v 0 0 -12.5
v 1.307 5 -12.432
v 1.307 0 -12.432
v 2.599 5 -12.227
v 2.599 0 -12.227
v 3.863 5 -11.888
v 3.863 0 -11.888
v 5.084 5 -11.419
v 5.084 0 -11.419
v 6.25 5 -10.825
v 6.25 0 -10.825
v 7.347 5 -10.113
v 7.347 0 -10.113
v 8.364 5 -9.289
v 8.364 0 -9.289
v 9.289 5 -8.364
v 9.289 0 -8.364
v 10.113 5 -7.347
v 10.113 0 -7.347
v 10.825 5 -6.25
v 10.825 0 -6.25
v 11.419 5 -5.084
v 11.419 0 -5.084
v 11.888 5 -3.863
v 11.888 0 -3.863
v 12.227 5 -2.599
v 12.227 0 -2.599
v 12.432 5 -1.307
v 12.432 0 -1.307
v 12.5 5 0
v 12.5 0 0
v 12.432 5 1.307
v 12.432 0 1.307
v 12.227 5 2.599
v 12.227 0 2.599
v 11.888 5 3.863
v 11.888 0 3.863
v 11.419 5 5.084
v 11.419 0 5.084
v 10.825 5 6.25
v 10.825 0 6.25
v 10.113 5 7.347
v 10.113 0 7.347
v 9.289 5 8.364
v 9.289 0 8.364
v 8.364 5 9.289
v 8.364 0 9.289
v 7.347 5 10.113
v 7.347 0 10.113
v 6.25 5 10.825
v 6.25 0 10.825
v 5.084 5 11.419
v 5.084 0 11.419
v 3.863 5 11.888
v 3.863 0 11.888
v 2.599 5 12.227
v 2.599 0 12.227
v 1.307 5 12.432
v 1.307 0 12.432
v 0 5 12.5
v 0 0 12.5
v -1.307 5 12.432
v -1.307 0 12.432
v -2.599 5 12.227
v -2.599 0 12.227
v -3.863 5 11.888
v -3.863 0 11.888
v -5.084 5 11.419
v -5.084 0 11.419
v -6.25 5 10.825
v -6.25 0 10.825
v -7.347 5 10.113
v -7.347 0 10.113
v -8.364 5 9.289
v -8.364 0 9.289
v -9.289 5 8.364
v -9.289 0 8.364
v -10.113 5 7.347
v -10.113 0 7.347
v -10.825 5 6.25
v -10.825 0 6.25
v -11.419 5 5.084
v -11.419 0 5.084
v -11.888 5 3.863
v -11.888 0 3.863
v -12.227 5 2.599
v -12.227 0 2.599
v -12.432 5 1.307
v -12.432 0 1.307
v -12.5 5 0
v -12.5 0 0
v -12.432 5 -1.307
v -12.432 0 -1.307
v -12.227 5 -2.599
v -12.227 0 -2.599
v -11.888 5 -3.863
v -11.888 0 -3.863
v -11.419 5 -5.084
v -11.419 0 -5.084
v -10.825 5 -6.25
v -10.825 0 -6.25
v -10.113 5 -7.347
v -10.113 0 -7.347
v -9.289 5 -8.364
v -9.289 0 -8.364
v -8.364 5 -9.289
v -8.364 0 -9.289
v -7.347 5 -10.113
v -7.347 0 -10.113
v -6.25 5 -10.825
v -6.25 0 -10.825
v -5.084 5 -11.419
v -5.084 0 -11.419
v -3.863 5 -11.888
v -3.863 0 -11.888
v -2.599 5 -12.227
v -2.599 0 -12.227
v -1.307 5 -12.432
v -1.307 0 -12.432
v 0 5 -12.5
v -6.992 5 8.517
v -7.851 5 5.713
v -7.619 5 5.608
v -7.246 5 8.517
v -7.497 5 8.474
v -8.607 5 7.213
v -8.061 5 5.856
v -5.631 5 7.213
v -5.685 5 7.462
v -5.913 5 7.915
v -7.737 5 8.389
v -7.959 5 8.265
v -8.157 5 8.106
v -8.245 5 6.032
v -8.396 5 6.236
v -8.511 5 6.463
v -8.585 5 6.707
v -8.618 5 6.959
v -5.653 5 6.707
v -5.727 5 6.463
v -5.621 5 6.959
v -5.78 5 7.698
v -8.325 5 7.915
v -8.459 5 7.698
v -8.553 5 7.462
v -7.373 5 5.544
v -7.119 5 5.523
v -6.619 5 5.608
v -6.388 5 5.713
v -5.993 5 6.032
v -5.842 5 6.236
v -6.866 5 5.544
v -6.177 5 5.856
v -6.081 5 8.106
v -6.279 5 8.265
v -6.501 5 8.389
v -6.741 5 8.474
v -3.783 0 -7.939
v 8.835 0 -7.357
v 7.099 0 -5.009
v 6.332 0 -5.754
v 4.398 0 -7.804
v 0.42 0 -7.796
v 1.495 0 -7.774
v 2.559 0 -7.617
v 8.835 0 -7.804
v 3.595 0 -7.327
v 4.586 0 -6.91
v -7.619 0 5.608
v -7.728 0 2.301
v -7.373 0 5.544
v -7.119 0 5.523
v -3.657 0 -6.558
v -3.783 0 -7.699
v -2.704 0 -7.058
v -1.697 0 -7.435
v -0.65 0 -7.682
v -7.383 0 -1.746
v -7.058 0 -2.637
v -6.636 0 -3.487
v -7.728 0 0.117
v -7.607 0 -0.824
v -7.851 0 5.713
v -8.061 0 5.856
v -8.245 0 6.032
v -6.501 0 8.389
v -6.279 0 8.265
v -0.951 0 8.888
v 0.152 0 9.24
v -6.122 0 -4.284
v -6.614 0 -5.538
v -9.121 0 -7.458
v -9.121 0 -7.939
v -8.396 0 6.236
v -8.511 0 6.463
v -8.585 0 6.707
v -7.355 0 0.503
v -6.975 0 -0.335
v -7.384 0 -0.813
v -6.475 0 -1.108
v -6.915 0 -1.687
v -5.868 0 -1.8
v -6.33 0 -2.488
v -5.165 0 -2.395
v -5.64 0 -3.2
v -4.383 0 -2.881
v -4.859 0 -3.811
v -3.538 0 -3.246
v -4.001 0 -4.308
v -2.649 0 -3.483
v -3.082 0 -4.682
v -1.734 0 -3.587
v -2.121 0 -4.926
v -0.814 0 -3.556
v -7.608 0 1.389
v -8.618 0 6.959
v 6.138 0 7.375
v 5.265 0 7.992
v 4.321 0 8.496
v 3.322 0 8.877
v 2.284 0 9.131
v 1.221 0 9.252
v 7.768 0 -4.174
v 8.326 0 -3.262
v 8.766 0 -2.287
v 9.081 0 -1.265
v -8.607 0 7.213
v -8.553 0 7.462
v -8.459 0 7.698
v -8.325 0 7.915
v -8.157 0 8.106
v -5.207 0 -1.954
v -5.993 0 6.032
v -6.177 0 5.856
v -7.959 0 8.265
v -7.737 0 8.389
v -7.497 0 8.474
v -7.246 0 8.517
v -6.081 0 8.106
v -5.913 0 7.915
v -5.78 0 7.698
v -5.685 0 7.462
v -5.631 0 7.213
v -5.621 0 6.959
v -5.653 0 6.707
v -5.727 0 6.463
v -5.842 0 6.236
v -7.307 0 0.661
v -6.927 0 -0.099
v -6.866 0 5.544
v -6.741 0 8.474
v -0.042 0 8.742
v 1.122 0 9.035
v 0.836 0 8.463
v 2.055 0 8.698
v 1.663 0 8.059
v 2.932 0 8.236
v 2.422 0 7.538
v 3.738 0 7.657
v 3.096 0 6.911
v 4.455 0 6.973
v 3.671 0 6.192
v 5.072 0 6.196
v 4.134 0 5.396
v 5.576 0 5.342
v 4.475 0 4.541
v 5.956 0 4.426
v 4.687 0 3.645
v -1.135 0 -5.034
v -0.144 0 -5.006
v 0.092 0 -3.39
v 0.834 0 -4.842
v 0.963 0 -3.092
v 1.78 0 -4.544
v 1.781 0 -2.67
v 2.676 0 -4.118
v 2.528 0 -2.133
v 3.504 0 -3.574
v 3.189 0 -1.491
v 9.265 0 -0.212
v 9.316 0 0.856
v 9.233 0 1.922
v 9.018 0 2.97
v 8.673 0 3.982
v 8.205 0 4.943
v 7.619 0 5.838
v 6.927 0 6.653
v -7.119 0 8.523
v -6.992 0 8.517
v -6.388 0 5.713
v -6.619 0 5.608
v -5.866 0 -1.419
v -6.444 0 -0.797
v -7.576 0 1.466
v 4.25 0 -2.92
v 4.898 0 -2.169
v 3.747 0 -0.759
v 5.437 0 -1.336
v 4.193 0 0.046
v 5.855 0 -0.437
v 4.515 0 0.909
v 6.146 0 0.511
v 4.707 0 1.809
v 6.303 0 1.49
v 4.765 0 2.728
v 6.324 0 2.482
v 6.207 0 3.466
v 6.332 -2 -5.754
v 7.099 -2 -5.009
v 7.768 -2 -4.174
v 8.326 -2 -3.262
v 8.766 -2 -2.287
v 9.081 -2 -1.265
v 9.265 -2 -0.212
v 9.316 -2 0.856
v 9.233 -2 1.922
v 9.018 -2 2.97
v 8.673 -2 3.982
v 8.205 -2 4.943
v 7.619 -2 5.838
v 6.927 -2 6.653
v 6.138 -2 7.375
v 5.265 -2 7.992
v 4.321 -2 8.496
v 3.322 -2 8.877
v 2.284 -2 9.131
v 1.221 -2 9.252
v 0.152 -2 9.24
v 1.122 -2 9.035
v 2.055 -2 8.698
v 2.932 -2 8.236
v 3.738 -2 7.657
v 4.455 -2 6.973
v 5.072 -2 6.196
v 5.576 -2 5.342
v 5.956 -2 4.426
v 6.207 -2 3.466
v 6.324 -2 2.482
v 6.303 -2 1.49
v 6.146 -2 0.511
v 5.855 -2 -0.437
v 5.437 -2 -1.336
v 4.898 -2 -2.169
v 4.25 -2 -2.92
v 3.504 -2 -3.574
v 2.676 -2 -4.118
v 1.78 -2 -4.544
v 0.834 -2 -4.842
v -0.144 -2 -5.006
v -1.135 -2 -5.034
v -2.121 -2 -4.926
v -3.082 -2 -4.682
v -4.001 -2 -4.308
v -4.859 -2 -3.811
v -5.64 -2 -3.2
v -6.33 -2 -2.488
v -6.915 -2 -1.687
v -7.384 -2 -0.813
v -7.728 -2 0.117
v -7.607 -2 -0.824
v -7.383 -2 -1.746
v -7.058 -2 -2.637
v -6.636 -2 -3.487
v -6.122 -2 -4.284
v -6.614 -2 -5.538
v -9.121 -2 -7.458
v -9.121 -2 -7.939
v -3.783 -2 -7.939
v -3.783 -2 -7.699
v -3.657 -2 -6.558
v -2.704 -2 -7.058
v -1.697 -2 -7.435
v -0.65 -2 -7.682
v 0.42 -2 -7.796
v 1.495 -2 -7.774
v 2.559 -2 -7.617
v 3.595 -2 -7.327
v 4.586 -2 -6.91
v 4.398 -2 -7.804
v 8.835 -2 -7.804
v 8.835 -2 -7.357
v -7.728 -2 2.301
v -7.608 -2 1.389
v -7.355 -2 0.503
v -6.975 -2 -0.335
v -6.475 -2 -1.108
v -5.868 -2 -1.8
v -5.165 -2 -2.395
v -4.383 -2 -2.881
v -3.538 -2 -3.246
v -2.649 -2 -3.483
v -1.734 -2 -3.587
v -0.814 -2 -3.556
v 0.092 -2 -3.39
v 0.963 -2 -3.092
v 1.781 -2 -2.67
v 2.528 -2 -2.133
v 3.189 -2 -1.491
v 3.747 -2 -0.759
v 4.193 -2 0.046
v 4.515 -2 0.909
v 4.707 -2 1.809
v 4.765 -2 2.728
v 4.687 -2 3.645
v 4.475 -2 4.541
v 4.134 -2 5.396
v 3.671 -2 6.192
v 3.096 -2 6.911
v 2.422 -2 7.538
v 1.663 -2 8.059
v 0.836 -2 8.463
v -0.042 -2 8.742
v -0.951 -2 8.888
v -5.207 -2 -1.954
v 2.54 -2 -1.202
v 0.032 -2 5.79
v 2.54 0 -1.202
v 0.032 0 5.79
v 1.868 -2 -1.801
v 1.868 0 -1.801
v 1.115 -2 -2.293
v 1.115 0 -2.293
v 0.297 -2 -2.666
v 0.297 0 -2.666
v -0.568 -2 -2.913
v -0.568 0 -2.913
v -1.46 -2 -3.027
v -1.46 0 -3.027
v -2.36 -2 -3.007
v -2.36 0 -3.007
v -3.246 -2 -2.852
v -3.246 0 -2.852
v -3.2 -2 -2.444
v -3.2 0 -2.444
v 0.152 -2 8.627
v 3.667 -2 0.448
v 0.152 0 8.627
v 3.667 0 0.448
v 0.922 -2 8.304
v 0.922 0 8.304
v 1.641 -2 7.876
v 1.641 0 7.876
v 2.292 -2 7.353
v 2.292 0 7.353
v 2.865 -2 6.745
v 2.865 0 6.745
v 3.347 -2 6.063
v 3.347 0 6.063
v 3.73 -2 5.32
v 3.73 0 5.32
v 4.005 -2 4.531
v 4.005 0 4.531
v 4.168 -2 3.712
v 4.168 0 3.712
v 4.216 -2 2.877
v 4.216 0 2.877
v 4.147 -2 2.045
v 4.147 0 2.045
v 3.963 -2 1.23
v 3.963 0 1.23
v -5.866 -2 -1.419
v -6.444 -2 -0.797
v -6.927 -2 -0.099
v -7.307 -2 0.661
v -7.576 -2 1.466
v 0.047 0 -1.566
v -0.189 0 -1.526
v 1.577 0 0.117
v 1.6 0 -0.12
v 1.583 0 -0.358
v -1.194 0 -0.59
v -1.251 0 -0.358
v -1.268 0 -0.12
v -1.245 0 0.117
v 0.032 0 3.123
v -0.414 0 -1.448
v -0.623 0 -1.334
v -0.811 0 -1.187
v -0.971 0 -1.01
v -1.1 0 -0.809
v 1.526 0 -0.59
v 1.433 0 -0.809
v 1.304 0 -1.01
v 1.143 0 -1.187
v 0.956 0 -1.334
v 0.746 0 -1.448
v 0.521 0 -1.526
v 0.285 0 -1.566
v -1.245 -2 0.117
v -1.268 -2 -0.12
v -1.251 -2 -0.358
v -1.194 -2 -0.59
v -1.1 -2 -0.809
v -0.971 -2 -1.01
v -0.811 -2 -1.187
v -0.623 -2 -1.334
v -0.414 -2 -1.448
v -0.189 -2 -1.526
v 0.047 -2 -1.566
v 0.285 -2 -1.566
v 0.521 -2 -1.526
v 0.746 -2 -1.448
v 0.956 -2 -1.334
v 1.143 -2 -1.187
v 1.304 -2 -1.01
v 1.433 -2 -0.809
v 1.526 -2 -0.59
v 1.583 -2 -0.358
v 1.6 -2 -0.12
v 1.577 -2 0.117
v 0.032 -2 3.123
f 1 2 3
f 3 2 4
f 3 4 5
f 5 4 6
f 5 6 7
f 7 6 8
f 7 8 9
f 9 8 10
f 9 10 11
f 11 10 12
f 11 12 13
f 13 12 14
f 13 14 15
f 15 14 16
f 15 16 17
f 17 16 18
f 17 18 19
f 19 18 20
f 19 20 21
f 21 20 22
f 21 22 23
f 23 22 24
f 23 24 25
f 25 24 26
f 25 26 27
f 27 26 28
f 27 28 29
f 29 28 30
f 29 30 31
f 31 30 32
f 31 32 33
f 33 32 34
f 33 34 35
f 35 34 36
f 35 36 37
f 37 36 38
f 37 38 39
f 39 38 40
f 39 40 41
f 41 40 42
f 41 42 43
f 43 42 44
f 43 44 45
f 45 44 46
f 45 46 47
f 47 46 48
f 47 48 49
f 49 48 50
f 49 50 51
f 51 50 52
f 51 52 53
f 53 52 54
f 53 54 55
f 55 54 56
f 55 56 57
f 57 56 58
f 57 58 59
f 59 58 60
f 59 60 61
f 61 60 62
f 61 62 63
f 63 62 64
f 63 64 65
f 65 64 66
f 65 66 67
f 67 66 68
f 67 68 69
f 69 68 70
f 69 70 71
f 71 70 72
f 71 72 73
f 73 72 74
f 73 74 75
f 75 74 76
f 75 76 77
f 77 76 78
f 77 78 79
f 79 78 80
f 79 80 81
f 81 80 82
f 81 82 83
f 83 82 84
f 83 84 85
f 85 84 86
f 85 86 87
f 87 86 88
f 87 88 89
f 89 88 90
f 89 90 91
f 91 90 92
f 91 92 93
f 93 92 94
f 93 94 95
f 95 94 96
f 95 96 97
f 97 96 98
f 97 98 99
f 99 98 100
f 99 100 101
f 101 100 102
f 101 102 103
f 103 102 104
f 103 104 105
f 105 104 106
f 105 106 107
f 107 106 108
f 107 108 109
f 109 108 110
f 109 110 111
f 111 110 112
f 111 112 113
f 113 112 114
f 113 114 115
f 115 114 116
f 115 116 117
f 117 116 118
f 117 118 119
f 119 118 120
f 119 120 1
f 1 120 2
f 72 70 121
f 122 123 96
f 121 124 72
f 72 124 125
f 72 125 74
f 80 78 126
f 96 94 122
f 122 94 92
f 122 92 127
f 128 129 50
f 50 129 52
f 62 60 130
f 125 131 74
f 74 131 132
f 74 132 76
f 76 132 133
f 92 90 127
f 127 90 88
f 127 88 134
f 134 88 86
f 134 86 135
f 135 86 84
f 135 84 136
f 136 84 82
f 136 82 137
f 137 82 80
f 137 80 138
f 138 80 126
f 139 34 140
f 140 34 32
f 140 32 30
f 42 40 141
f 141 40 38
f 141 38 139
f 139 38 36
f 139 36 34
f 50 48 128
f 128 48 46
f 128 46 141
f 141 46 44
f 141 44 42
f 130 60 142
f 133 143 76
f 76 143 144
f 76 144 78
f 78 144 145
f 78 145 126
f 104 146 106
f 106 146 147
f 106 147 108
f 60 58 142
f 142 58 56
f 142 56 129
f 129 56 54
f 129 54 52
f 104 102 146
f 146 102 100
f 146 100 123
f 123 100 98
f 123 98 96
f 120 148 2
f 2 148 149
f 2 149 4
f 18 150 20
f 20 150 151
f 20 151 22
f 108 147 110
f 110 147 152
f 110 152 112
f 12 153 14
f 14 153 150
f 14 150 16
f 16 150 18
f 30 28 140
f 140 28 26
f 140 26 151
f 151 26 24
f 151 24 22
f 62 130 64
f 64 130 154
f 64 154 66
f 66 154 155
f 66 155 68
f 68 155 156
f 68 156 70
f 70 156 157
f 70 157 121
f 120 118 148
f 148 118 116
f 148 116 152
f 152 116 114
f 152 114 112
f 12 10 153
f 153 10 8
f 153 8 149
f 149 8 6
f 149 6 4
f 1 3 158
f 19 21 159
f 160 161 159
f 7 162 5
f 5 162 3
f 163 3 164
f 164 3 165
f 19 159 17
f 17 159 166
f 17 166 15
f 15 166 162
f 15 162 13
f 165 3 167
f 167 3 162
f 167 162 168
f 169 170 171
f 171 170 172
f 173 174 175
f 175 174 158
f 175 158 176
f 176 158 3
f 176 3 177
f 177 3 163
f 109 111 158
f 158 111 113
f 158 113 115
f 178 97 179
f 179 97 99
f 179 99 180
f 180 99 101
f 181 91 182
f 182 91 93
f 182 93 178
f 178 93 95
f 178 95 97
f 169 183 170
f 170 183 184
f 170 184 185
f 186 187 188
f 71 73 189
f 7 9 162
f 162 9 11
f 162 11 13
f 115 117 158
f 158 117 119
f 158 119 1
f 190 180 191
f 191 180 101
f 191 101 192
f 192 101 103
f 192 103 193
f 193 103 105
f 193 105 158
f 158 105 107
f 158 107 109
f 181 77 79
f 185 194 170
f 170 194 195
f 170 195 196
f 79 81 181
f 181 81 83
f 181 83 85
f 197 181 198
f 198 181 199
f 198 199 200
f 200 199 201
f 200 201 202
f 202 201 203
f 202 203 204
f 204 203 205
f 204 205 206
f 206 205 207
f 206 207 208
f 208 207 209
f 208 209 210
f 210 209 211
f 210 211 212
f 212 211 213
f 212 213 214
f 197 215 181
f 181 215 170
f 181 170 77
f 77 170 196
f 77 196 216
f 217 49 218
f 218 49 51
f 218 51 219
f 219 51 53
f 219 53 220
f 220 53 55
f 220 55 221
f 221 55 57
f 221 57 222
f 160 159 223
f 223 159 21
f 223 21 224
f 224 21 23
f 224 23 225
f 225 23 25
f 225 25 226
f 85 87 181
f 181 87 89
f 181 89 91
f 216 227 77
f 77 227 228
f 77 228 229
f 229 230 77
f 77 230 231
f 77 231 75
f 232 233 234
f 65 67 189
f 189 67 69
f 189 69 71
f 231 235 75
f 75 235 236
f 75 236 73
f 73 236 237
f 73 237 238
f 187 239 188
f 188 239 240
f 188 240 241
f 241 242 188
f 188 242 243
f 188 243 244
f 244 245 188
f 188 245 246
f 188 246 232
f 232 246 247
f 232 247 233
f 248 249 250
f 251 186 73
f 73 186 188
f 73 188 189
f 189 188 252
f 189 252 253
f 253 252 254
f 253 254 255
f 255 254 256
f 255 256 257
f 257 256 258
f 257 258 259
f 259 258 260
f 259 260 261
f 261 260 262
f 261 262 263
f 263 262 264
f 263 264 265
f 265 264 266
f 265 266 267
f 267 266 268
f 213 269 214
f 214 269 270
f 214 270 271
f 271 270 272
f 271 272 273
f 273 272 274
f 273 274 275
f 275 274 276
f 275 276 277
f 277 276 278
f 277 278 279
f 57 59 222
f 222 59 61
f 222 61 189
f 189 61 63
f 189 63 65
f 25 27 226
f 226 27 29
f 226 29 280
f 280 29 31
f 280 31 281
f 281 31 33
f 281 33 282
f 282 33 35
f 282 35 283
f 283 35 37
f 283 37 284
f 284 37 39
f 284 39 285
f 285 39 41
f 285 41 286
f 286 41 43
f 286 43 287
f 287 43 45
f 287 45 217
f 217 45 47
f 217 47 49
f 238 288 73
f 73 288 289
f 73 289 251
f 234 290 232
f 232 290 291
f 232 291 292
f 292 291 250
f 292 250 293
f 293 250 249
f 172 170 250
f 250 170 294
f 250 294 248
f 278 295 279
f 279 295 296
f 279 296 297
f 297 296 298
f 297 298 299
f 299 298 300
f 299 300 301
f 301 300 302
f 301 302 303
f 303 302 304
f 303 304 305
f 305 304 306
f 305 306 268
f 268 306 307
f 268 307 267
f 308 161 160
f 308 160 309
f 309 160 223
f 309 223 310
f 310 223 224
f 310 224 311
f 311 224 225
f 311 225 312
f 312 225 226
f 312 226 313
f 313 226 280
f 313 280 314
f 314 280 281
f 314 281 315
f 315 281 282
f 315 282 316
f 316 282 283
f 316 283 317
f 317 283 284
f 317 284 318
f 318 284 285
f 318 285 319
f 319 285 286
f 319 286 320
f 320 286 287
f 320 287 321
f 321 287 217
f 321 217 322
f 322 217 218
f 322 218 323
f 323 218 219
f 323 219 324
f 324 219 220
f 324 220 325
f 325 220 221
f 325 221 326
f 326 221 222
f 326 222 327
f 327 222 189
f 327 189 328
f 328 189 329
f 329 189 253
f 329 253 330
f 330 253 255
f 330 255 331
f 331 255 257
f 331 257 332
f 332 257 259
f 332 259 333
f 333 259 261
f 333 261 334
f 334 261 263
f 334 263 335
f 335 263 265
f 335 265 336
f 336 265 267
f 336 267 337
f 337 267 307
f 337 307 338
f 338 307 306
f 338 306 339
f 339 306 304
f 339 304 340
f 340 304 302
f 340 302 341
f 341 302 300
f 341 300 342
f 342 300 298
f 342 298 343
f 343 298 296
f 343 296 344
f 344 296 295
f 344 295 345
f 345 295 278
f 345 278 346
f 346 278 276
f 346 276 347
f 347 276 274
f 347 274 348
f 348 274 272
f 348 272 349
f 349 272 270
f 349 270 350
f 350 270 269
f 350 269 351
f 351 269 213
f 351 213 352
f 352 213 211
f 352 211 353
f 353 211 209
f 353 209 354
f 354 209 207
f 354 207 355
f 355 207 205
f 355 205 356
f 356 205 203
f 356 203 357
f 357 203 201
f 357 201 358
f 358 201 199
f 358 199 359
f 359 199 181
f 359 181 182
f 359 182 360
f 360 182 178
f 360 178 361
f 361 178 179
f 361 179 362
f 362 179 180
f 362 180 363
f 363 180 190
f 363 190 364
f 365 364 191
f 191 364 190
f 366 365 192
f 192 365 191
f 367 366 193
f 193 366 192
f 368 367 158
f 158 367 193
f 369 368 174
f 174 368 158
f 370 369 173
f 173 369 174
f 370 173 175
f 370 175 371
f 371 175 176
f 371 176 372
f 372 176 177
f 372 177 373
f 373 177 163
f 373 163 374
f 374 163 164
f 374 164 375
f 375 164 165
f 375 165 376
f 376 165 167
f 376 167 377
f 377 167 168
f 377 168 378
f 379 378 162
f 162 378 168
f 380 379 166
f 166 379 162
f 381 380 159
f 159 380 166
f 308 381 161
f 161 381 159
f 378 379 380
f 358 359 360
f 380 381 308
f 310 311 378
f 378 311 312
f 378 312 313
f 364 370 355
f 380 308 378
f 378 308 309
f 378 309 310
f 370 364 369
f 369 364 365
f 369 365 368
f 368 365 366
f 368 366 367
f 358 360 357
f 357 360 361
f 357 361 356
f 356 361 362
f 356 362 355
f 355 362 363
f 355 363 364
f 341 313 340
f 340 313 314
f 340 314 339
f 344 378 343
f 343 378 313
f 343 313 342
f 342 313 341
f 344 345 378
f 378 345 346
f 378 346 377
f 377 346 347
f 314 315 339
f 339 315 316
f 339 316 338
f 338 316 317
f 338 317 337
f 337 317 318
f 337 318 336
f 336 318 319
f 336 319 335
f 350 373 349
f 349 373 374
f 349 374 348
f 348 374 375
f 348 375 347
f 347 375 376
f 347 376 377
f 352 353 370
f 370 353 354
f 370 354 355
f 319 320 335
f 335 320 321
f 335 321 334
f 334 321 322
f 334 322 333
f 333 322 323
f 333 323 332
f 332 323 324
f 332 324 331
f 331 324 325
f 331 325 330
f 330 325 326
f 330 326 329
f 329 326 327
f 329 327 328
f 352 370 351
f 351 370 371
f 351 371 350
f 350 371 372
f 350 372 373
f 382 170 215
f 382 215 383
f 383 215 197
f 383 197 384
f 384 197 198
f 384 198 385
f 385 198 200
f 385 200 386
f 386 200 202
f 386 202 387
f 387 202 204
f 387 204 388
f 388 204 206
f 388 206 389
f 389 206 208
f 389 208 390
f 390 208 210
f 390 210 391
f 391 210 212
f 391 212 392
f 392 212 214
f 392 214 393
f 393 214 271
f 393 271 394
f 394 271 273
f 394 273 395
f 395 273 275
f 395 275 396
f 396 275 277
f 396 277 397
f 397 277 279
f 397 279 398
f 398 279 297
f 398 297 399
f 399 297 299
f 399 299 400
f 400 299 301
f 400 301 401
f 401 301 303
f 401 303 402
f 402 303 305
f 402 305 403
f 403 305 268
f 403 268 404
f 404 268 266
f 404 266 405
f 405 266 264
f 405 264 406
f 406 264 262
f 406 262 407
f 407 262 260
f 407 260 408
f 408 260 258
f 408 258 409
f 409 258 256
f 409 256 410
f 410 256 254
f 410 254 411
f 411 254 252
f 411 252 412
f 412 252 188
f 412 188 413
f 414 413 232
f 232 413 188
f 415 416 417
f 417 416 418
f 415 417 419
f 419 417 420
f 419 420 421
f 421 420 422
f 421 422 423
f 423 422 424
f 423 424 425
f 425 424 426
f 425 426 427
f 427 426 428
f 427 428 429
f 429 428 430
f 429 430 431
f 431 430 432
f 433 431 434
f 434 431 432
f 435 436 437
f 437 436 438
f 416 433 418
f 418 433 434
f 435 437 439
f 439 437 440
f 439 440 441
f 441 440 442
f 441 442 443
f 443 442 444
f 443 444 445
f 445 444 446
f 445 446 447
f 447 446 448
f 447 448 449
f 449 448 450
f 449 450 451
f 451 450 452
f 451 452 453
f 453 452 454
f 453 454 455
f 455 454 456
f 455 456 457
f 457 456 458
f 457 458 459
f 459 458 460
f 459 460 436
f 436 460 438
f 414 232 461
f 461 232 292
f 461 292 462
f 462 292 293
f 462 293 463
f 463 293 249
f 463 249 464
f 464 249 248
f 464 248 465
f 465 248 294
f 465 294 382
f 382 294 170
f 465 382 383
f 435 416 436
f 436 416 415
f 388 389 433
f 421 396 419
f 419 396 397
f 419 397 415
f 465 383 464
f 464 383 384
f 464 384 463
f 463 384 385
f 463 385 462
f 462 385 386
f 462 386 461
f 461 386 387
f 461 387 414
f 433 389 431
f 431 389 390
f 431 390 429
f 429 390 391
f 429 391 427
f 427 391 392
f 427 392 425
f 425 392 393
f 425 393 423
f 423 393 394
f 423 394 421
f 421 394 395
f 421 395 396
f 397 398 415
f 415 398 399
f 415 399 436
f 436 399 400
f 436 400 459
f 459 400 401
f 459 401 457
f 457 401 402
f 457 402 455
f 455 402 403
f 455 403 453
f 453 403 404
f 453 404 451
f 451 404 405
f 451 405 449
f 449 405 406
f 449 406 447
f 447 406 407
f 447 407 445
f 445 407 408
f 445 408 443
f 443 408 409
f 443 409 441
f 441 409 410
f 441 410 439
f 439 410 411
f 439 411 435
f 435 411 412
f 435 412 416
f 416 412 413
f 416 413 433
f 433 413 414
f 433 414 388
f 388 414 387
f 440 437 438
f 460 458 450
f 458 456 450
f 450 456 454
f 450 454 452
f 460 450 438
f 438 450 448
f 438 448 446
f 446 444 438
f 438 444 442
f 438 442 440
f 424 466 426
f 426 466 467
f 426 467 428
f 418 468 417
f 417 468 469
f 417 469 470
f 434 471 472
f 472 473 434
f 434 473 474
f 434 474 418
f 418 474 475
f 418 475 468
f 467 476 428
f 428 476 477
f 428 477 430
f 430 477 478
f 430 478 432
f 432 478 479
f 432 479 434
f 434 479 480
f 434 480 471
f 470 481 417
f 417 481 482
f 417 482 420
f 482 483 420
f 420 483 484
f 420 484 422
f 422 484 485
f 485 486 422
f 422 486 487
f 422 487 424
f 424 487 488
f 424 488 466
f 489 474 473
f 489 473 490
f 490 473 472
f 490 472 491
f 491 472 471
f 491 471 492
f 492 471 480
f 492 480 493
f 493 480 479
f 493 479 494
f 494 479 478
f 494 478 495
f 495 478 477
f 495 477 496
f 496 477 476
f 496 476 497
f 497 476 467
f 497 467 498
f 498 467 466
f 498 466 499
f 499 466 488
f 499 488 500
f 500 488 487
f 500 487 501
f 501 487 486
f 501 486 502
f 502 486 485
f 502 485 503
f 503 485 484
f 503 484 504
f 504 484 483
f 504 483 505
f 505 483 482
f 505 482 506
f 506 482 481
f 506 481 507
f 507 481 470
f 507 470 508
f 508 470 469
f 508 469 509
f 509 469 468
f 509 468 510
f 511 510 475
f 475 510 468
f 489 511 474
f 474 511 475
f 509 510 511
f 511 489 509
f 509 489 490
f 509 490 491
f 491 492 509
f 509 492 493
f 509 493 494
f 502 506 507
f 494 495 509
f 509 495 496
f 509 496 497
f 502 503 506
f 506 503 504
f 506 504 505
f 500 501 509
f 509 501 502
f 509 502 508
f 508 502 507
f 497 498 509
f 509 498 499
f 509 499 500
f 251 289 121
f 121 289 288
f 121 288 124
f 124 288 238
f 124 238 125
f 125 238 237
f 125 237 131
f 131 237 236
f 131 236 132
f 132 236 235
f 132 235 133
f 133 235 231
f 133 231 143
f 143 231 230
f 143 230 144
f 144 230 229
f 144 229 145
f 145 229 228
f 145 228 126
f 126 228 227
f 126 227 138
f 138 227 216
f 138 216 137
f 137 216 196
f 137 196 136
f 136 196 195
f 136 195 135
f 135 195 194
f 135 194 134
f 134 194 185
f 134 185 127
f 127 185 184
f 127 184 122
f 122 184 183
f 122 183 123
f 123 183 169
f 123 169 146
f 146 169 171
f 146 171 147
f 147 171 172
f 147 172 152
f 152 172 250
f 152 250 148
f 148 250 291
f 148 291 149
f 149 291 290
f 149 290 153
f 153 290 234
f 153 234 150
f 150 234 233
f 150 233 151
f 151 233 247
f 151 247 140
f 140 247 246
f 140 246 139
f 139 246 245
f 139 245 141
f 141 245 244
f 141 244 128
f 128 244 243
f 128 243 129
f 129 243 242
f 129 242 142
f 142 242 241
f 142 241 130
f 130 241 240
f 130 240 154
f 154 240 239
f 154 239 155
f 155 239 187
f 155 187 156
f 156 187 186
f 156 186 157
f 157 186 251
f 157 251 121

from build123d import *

# Parameters (mm, degrees)
SKETCH1_R               = 12.5
BOSS_EXTRUDE1_DEPTH     = 5
BOSS_EXTRUDE2_DEPTH     = 2
CUT_EXTRUDE1_DEPTH      = 19.371173071
CUT_EXTRUDE1_DEPTH_BACK = 19.371173071
SKETCH7_R               = 1.5


with BuildPart() as part:
    # Sketch1 → Boss-Extrude1 (new body)
    with BuildSketch(Plane(origin=(0, 0, 0), x_dir=(1, 0, 0), z_dir=(0, 1, 0))):
        with Locations(Location((0, 0, 0), (0, 0, 270))):
            Circle(SKETCH1_R)
    extrude(amount=BOSS_EXTRUDE1_DEPTH)

    # Sketch5 → Boss-Extrude2 (add)
    with BuildSketch(Plane.XZ):
        with BuildLine():
            ThreePointArc((0.151933345, 9.240024976), (7.241529429, -4.84837498), (-7.728040184, 0.117243971))
            ThreePointArc((-7.728040184, 0.117243971), (4.587114181, -2.555573928), (0.151933345, 9.240024976))
        make_face()
        with BuildLine():
            ThreePointArc((-3.656517397, -6.557691991), (-5.001923128, -5.543170647), (-6.121751206, -4.284061751))
            Line((-6.121751206, -4.284061751), (-6.613956363, -5.53781326))
            Line((-6.613956363, -5.53781326), (-9.1213874, -7.458398735))
            Line((-9.1213874, -7.458398735), (-9.1213874, -7.938927068))
            Line((-9.1213874, -7.938927068), (-3.783058525, -7.938927068))
            Line((-3.783058525, -7.938927068), (-3.783058525, -7.698853884))
            Line((-3.783058525, -7.698853884), (-3.656517397, -6.557691991))
        make_face()
        with BuildLine():
            ThreePointArc((6.332224885, -5.753540044), (5.494878341, -6.385314366), (4.586346954, -6.909584092))
            Line((4.586346954, -6.909584092), (4.398231289, -7.803613119))
            Line((4.398231289, -7.803613119), (8.835264261, -7.803613119))
            Line((8.835264261, -7.803613119), (8.835264261, -7.356598606))
            Line((8.835264261, -7.356598606), (6.332224885, -5.753540044))
        make_face()
        with BuildLine():
            ThreePointArc((-0.950626232, 8.887896426), (2.400955984, -1.341013908), (-7.728040184, 2.301395544))
            ThreePointArc((-7.728040184, 2.301395544), (2.870290324, -1.823952142), (-0.950626232, 8.887896426))
        make_face()
        with BuildLine():
            ThreePointArc((-5.206948691, -1.953864639), (-4.267011364, -2.491822801), (-3.245572389, -2.851744431))
            Line((-3.245572389, -2.851744431), (-3.200349413, -2.443918626))
            Line((-3.200349413, -2.443918626), (0.032158273, 5.78996786))
            Line((0.032158273, 5.78996786), (2.539505861, -1.201879249))
            ThreePointArc((2.539505861, -1.201879249), (3.172462056, -0.424101438), (3.666799623, 0.448367609))
            Line((3.666799623, 0.448367609), (0.151933345, 8.626753393))
            ThreePointArc((0.151933345, 8.626753393), (-0.393157926, 8.783453154), (-0.950626232, 8.887896426))
            Line((-0.950626232, 8.887896426), (-5.206948691, -1.953864639))
        make_face()
        with BuildLine():
            ThreePointArc((1.577176372, 0.117243971), (0.166068053, -1.570987631), (-1.245040266, 0.117243971))
            Line((-1.245040266, 0.117243971), (0.032158273, 3.12312116))
            Line((0.032158273, 3.12312116), (1.577176372, 0.117243971))
        make_face()
    extrude(amount=BOSS_EXTRUDE2_DEPTH)

    # Sketch7 → Cut-Extrude1 (cut, two sides: drawn at the far end of the back side and taken through both)
    with BuildSketch(Plane.XZ.offset(-CUT_EXTRUDE1_DEPTH_BACK)):
        with Locations(Location((-7.119157088, 7.022649241, 0), (0, 0, 270))):
            Circle(SKETCH7_R)
    extrude(amount=CUT_EXTRUDE1_DEPTH + CUT_EXTRUDE1_DEPTH_BACK, mode=Mode.SUBTRACT)


solid = part.part
